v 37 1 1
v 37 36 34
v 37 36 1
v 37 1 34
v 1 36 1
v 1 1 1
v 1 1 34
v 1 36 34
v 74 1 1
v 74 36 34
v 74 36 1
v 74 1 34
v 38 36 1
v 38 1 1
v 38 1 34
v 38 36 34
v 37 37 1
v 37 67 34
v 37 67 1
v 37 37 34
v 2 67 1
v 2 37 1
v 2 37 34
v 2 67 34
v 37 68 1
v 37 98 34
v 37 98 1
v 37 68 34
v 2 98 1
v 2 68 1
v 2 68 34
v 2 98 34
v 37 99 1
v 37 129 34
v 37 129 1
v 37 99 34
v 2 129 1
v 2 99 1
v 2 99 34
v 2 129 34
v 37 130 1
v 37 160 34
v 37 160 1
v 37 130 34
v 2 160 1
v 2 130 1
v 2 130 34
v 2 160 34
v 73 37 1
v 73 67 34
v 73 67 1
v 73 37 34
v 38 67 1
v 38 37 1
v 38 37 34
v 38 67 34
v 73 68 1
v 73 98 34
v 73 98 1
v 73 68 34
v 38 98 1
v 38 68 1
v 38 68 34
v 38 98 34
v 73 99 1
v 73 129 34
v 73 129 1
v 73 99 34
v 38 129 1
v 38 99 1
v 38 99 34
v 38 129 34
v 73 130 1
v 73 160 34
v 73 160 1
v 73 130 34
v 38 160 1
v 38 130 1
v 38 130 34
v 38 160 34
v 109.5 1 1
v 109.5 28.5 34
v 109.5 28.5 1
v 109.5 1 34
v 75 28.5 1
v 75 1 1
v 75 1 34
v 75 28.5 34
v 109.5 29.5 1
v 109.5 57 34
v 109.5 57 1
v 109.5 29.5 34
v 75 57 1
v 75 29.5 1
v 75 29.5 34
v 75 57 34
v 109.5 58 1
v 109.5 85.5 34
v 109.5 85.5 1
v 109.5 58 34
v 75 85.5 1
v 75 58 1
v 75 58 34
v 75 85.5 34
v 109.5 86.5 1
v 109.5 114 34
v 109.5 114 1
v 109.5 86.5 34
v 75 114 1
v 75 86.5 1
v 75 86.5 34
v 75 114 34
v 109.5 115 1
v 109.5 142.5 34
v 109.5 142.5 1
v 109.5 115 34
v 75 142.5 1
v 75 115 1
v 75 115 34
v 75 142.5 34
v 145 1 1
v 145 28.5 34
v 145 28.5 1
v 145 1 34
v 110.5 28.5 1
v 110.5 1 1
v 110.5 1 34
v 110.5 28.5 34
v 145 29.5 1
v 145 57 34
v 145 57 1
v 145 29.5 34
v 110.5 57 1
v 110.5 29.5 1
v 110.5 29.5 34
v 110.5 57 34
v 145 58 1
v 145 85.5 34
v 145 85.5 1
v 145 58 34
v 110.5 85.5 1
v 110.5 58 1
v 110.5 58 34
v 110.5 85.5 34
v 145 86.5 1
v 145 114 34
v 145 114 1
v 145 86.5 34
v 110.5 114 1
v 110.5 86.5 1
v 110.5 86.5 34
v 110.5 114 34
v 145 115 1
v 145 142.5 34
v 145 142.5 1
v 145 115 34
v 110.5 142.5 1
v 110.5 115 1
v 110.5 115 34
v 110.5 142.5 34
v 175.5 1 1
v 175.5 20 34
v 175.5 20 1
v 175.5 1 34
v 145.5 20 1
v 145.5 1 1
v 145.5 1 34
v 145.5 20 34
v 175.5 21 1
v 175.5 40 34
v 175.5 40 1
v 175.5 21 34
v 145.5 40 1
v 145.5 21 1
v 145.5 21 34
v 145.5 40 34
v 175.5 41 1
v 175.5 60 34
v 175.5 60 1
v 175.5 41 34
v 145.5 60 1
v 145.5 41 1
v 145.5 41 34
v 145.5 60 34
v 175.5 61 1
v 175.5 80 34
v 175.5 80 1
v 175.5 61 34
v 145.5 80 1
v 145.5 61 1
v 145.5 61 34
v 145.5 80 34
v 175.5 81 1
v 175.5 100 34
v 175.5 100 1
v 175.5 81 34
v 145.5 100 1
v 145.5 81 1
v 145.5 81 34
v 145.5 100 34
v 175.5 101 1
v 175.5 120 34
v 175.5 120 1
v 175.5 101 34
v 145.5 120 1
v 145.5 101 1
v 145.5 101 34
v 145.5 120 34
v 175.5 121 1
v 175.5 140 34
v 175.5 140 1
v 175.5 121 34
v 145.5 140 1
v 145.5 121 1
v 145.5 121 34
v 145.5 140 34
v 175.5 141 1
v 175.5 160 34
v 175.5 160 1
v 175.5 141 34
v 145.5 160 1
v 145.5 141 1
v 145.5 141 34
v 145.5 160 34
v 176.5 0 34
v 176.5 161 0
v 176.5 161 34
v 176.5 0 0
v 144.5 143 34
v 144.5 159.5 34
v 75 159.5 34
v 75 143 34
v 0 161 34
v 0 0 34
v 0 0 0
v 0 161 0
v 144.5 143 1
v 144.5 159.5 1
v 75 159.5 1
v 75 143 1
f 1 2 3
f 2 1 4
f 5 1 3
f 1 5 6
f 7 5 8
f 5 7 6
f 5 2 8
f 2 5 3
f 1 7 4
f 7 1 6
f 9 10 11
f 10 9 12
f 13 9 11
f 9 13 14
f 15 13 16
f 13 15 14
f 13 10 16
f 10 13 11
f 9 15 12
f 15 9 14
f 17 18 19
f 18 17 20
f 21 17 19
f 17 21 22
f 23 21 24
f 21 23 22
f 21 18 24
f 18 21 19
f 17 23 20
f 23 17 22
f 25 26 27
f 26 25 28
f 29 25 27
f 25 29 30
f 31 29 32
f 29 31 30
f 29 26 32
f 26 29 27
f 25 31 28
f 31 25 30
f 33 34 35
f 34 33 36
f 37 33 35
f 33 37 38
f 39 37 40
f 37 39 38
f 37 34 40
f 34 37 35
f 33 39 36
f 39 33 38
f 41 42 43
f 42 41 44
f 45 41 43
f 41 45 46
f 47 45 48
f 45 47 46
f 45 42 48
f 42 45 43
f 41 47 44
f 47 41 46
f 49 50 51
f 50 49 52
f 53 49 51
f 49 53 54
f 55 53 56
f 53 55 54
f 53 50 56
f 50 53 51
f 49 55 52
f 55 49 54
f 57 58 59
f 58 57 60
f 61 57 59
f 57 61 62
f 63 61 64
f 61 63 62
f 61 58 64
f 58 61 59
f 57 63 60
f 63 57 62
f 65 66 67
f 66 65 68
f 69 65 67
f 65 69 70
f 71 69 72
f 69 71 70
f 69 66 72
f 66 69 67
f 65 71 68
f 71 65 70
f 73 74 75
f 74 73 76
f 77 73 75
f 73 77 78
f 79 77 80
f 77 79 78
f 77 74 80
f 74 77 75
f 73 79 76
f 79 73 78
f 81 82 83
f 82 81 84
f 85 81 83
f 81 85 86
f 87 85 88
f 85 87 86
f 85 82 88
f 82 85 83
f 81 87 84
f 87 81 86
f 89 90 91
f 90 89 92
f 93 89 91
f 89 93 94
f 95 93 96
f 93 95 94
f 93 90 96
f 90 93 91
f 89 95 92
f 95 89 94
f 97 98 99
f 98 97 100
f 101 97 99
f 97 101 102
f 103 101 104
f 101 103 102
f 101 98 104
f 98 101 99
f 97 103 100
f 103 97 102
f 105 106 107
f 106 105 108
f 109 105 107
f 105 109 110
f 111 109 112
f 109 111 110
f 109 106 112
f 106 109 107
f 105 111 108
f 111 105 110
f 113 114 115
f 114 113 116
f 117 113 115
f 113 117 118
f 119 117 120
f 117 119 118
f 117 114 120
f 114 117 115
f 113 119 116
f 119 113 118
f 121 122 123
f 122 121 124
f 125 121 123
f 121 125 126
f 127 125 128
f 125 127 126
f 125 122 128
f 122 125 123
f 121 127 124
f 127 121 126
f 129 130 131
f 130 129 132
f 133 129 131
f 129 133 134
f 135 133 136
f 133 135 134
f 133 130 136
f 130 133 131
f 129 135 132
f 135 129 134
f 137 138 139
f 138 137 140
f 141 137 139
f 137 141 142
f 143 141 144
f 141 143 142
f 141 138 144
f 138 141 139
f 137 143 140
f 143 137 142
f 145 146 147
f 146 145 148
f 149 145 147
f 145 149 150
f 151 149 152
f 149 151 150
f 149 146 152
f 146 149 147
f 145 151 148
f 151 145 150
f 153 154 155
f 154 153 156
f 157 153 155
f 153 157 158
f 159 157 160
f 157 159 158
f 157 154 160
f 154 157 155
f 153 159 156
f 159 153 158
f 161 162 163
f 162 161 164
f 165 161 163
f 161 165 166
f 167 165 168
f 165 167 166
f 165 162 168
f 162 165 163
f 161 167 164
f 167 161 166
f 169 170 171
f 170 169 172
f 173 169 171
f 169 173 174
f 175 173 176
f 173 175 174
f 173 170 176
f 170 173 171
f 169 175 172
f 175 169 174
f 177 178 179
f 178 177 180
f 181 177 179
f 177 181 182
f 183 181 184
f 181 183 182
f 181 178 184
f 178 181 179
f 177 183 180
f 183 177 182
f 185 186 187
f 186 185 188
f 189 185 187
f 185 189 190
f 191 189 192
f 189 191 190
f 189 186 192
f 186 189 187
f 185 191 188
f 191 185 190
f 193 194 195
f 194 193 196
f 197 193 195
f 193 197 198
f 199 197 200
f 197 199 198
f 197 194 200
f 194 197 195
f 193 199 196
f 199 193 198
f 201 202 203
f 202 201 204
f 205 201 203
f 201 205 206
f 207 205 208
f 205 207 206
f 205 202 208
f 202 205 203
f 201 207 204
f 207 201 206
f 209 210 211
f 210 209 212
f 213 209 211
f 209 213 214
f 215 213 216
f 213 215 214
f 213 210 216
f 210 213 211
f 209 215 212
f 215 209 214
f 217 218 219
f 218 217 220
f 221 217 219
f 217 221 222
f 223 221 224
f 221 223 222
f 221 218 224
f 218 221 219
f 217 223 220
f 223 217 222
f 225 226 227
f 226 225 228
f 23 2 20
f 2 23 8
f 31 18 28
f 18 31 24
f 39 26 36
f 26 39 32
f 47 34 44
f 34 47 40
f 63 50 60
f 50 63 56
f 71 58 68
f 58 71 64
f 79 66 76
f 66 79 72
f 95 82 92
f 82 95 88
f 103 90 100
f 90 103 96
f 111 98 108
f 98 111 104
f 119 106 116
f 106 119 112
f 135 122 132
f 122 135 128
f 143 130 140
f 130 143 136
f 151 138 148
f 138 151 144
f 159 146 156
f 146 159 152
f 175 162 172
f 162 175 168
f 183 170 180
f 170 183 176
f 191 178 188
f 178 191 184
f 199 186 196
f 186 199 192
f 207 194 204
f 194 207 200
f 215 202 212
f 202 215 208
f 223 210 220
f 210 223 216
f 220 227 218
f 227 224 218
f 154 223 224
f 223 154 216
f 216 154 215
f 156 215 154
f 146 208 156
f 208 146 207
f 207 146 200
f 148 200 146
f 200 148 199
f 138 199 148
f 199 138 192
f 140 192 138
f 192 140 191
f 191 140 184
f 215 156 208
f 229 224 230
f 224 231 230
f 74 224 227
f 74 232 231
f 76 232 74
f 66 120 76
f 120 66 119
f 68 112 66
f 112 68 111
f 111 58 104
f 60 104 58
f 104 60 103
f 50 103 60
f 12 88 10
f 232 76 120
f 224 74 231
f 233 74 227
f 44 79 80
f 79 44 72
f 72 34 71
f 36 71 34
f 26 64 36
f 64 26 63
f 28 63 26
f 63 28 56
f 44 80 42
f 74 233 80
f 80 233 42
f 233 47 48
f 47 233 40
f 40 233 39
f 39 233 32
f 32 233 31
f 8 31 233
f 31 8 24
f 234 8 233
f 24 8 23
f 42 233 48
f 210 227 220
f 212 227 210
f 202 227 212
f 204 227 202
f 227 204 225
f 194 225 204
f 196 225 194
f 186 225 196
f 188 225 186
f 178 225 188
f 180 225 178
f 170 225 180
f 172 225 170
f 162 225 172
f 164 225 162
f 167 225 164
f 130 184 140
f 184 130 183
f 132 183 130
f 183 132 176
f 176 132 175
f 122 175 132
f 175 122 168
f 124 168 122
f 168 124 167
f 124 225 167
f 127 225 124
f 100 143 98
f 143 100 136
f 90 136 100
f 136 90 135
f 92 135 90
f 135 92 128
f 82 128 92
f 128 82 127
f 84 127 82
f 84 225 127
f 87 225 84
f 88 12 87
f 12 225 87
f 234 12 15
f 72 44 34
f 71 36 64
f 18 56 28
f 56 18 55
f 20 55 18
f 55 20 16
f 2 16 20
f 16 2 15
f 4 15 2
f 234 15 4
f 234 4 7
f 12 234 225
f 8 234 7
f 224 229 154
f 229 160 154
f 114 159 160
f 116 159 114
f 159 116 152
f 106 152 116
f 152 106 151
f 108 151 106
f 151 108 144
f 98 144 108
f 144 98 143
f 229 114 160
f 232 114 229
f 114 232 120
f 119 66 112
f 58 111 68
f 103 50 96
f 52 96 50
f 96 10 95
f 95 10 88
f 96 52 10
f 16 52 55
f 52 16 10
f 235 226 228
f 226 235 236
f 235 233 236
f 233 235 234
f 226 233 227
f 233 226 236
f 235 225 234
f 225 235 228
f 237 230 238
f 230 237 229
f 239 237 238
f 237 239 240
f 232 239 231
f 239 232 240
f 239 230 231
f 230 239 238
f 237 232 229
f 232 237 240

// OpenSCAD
// Battery Box for my favorite batteries.
// Mark Harrison -- marhar@gmail.com
// Share and Enjoy!

ww=1;    // wall thickness
dz=34;   // height
dx=176.5;  // width
dy=161;  // breadth

// a block of nx*ny batteries, size xx*yy, offset at offx,offy
module block(xx,yy,offx,offy,nx,ny,description) {
    translate([offx+ww,offy+ww,ww]) {
        for (i = [0:1:nx-1]) {
            for (j = [0:1:ny-1]) {
                translate([i*(xx+ww),j*(yy+ww),0]) {
                    cube([xx,yy,dz]);
                }
            }
        }
    }
}

// the main box
module box() {
    difference() {
        cube([dx,dy,dz]);
        block(36,35,0,0,2,1,"4s 1800 graphene");
        block(35,30,1,36,2,4,"4s 1800");
        block(34.5,27.5,74,0,2,5, "4s 1300 graphene");
        block(30,19,144.5,0,1,8, "3s 500");
        block(69.5,16.5,74,142,1,1, "hole");
    }
}

box();
